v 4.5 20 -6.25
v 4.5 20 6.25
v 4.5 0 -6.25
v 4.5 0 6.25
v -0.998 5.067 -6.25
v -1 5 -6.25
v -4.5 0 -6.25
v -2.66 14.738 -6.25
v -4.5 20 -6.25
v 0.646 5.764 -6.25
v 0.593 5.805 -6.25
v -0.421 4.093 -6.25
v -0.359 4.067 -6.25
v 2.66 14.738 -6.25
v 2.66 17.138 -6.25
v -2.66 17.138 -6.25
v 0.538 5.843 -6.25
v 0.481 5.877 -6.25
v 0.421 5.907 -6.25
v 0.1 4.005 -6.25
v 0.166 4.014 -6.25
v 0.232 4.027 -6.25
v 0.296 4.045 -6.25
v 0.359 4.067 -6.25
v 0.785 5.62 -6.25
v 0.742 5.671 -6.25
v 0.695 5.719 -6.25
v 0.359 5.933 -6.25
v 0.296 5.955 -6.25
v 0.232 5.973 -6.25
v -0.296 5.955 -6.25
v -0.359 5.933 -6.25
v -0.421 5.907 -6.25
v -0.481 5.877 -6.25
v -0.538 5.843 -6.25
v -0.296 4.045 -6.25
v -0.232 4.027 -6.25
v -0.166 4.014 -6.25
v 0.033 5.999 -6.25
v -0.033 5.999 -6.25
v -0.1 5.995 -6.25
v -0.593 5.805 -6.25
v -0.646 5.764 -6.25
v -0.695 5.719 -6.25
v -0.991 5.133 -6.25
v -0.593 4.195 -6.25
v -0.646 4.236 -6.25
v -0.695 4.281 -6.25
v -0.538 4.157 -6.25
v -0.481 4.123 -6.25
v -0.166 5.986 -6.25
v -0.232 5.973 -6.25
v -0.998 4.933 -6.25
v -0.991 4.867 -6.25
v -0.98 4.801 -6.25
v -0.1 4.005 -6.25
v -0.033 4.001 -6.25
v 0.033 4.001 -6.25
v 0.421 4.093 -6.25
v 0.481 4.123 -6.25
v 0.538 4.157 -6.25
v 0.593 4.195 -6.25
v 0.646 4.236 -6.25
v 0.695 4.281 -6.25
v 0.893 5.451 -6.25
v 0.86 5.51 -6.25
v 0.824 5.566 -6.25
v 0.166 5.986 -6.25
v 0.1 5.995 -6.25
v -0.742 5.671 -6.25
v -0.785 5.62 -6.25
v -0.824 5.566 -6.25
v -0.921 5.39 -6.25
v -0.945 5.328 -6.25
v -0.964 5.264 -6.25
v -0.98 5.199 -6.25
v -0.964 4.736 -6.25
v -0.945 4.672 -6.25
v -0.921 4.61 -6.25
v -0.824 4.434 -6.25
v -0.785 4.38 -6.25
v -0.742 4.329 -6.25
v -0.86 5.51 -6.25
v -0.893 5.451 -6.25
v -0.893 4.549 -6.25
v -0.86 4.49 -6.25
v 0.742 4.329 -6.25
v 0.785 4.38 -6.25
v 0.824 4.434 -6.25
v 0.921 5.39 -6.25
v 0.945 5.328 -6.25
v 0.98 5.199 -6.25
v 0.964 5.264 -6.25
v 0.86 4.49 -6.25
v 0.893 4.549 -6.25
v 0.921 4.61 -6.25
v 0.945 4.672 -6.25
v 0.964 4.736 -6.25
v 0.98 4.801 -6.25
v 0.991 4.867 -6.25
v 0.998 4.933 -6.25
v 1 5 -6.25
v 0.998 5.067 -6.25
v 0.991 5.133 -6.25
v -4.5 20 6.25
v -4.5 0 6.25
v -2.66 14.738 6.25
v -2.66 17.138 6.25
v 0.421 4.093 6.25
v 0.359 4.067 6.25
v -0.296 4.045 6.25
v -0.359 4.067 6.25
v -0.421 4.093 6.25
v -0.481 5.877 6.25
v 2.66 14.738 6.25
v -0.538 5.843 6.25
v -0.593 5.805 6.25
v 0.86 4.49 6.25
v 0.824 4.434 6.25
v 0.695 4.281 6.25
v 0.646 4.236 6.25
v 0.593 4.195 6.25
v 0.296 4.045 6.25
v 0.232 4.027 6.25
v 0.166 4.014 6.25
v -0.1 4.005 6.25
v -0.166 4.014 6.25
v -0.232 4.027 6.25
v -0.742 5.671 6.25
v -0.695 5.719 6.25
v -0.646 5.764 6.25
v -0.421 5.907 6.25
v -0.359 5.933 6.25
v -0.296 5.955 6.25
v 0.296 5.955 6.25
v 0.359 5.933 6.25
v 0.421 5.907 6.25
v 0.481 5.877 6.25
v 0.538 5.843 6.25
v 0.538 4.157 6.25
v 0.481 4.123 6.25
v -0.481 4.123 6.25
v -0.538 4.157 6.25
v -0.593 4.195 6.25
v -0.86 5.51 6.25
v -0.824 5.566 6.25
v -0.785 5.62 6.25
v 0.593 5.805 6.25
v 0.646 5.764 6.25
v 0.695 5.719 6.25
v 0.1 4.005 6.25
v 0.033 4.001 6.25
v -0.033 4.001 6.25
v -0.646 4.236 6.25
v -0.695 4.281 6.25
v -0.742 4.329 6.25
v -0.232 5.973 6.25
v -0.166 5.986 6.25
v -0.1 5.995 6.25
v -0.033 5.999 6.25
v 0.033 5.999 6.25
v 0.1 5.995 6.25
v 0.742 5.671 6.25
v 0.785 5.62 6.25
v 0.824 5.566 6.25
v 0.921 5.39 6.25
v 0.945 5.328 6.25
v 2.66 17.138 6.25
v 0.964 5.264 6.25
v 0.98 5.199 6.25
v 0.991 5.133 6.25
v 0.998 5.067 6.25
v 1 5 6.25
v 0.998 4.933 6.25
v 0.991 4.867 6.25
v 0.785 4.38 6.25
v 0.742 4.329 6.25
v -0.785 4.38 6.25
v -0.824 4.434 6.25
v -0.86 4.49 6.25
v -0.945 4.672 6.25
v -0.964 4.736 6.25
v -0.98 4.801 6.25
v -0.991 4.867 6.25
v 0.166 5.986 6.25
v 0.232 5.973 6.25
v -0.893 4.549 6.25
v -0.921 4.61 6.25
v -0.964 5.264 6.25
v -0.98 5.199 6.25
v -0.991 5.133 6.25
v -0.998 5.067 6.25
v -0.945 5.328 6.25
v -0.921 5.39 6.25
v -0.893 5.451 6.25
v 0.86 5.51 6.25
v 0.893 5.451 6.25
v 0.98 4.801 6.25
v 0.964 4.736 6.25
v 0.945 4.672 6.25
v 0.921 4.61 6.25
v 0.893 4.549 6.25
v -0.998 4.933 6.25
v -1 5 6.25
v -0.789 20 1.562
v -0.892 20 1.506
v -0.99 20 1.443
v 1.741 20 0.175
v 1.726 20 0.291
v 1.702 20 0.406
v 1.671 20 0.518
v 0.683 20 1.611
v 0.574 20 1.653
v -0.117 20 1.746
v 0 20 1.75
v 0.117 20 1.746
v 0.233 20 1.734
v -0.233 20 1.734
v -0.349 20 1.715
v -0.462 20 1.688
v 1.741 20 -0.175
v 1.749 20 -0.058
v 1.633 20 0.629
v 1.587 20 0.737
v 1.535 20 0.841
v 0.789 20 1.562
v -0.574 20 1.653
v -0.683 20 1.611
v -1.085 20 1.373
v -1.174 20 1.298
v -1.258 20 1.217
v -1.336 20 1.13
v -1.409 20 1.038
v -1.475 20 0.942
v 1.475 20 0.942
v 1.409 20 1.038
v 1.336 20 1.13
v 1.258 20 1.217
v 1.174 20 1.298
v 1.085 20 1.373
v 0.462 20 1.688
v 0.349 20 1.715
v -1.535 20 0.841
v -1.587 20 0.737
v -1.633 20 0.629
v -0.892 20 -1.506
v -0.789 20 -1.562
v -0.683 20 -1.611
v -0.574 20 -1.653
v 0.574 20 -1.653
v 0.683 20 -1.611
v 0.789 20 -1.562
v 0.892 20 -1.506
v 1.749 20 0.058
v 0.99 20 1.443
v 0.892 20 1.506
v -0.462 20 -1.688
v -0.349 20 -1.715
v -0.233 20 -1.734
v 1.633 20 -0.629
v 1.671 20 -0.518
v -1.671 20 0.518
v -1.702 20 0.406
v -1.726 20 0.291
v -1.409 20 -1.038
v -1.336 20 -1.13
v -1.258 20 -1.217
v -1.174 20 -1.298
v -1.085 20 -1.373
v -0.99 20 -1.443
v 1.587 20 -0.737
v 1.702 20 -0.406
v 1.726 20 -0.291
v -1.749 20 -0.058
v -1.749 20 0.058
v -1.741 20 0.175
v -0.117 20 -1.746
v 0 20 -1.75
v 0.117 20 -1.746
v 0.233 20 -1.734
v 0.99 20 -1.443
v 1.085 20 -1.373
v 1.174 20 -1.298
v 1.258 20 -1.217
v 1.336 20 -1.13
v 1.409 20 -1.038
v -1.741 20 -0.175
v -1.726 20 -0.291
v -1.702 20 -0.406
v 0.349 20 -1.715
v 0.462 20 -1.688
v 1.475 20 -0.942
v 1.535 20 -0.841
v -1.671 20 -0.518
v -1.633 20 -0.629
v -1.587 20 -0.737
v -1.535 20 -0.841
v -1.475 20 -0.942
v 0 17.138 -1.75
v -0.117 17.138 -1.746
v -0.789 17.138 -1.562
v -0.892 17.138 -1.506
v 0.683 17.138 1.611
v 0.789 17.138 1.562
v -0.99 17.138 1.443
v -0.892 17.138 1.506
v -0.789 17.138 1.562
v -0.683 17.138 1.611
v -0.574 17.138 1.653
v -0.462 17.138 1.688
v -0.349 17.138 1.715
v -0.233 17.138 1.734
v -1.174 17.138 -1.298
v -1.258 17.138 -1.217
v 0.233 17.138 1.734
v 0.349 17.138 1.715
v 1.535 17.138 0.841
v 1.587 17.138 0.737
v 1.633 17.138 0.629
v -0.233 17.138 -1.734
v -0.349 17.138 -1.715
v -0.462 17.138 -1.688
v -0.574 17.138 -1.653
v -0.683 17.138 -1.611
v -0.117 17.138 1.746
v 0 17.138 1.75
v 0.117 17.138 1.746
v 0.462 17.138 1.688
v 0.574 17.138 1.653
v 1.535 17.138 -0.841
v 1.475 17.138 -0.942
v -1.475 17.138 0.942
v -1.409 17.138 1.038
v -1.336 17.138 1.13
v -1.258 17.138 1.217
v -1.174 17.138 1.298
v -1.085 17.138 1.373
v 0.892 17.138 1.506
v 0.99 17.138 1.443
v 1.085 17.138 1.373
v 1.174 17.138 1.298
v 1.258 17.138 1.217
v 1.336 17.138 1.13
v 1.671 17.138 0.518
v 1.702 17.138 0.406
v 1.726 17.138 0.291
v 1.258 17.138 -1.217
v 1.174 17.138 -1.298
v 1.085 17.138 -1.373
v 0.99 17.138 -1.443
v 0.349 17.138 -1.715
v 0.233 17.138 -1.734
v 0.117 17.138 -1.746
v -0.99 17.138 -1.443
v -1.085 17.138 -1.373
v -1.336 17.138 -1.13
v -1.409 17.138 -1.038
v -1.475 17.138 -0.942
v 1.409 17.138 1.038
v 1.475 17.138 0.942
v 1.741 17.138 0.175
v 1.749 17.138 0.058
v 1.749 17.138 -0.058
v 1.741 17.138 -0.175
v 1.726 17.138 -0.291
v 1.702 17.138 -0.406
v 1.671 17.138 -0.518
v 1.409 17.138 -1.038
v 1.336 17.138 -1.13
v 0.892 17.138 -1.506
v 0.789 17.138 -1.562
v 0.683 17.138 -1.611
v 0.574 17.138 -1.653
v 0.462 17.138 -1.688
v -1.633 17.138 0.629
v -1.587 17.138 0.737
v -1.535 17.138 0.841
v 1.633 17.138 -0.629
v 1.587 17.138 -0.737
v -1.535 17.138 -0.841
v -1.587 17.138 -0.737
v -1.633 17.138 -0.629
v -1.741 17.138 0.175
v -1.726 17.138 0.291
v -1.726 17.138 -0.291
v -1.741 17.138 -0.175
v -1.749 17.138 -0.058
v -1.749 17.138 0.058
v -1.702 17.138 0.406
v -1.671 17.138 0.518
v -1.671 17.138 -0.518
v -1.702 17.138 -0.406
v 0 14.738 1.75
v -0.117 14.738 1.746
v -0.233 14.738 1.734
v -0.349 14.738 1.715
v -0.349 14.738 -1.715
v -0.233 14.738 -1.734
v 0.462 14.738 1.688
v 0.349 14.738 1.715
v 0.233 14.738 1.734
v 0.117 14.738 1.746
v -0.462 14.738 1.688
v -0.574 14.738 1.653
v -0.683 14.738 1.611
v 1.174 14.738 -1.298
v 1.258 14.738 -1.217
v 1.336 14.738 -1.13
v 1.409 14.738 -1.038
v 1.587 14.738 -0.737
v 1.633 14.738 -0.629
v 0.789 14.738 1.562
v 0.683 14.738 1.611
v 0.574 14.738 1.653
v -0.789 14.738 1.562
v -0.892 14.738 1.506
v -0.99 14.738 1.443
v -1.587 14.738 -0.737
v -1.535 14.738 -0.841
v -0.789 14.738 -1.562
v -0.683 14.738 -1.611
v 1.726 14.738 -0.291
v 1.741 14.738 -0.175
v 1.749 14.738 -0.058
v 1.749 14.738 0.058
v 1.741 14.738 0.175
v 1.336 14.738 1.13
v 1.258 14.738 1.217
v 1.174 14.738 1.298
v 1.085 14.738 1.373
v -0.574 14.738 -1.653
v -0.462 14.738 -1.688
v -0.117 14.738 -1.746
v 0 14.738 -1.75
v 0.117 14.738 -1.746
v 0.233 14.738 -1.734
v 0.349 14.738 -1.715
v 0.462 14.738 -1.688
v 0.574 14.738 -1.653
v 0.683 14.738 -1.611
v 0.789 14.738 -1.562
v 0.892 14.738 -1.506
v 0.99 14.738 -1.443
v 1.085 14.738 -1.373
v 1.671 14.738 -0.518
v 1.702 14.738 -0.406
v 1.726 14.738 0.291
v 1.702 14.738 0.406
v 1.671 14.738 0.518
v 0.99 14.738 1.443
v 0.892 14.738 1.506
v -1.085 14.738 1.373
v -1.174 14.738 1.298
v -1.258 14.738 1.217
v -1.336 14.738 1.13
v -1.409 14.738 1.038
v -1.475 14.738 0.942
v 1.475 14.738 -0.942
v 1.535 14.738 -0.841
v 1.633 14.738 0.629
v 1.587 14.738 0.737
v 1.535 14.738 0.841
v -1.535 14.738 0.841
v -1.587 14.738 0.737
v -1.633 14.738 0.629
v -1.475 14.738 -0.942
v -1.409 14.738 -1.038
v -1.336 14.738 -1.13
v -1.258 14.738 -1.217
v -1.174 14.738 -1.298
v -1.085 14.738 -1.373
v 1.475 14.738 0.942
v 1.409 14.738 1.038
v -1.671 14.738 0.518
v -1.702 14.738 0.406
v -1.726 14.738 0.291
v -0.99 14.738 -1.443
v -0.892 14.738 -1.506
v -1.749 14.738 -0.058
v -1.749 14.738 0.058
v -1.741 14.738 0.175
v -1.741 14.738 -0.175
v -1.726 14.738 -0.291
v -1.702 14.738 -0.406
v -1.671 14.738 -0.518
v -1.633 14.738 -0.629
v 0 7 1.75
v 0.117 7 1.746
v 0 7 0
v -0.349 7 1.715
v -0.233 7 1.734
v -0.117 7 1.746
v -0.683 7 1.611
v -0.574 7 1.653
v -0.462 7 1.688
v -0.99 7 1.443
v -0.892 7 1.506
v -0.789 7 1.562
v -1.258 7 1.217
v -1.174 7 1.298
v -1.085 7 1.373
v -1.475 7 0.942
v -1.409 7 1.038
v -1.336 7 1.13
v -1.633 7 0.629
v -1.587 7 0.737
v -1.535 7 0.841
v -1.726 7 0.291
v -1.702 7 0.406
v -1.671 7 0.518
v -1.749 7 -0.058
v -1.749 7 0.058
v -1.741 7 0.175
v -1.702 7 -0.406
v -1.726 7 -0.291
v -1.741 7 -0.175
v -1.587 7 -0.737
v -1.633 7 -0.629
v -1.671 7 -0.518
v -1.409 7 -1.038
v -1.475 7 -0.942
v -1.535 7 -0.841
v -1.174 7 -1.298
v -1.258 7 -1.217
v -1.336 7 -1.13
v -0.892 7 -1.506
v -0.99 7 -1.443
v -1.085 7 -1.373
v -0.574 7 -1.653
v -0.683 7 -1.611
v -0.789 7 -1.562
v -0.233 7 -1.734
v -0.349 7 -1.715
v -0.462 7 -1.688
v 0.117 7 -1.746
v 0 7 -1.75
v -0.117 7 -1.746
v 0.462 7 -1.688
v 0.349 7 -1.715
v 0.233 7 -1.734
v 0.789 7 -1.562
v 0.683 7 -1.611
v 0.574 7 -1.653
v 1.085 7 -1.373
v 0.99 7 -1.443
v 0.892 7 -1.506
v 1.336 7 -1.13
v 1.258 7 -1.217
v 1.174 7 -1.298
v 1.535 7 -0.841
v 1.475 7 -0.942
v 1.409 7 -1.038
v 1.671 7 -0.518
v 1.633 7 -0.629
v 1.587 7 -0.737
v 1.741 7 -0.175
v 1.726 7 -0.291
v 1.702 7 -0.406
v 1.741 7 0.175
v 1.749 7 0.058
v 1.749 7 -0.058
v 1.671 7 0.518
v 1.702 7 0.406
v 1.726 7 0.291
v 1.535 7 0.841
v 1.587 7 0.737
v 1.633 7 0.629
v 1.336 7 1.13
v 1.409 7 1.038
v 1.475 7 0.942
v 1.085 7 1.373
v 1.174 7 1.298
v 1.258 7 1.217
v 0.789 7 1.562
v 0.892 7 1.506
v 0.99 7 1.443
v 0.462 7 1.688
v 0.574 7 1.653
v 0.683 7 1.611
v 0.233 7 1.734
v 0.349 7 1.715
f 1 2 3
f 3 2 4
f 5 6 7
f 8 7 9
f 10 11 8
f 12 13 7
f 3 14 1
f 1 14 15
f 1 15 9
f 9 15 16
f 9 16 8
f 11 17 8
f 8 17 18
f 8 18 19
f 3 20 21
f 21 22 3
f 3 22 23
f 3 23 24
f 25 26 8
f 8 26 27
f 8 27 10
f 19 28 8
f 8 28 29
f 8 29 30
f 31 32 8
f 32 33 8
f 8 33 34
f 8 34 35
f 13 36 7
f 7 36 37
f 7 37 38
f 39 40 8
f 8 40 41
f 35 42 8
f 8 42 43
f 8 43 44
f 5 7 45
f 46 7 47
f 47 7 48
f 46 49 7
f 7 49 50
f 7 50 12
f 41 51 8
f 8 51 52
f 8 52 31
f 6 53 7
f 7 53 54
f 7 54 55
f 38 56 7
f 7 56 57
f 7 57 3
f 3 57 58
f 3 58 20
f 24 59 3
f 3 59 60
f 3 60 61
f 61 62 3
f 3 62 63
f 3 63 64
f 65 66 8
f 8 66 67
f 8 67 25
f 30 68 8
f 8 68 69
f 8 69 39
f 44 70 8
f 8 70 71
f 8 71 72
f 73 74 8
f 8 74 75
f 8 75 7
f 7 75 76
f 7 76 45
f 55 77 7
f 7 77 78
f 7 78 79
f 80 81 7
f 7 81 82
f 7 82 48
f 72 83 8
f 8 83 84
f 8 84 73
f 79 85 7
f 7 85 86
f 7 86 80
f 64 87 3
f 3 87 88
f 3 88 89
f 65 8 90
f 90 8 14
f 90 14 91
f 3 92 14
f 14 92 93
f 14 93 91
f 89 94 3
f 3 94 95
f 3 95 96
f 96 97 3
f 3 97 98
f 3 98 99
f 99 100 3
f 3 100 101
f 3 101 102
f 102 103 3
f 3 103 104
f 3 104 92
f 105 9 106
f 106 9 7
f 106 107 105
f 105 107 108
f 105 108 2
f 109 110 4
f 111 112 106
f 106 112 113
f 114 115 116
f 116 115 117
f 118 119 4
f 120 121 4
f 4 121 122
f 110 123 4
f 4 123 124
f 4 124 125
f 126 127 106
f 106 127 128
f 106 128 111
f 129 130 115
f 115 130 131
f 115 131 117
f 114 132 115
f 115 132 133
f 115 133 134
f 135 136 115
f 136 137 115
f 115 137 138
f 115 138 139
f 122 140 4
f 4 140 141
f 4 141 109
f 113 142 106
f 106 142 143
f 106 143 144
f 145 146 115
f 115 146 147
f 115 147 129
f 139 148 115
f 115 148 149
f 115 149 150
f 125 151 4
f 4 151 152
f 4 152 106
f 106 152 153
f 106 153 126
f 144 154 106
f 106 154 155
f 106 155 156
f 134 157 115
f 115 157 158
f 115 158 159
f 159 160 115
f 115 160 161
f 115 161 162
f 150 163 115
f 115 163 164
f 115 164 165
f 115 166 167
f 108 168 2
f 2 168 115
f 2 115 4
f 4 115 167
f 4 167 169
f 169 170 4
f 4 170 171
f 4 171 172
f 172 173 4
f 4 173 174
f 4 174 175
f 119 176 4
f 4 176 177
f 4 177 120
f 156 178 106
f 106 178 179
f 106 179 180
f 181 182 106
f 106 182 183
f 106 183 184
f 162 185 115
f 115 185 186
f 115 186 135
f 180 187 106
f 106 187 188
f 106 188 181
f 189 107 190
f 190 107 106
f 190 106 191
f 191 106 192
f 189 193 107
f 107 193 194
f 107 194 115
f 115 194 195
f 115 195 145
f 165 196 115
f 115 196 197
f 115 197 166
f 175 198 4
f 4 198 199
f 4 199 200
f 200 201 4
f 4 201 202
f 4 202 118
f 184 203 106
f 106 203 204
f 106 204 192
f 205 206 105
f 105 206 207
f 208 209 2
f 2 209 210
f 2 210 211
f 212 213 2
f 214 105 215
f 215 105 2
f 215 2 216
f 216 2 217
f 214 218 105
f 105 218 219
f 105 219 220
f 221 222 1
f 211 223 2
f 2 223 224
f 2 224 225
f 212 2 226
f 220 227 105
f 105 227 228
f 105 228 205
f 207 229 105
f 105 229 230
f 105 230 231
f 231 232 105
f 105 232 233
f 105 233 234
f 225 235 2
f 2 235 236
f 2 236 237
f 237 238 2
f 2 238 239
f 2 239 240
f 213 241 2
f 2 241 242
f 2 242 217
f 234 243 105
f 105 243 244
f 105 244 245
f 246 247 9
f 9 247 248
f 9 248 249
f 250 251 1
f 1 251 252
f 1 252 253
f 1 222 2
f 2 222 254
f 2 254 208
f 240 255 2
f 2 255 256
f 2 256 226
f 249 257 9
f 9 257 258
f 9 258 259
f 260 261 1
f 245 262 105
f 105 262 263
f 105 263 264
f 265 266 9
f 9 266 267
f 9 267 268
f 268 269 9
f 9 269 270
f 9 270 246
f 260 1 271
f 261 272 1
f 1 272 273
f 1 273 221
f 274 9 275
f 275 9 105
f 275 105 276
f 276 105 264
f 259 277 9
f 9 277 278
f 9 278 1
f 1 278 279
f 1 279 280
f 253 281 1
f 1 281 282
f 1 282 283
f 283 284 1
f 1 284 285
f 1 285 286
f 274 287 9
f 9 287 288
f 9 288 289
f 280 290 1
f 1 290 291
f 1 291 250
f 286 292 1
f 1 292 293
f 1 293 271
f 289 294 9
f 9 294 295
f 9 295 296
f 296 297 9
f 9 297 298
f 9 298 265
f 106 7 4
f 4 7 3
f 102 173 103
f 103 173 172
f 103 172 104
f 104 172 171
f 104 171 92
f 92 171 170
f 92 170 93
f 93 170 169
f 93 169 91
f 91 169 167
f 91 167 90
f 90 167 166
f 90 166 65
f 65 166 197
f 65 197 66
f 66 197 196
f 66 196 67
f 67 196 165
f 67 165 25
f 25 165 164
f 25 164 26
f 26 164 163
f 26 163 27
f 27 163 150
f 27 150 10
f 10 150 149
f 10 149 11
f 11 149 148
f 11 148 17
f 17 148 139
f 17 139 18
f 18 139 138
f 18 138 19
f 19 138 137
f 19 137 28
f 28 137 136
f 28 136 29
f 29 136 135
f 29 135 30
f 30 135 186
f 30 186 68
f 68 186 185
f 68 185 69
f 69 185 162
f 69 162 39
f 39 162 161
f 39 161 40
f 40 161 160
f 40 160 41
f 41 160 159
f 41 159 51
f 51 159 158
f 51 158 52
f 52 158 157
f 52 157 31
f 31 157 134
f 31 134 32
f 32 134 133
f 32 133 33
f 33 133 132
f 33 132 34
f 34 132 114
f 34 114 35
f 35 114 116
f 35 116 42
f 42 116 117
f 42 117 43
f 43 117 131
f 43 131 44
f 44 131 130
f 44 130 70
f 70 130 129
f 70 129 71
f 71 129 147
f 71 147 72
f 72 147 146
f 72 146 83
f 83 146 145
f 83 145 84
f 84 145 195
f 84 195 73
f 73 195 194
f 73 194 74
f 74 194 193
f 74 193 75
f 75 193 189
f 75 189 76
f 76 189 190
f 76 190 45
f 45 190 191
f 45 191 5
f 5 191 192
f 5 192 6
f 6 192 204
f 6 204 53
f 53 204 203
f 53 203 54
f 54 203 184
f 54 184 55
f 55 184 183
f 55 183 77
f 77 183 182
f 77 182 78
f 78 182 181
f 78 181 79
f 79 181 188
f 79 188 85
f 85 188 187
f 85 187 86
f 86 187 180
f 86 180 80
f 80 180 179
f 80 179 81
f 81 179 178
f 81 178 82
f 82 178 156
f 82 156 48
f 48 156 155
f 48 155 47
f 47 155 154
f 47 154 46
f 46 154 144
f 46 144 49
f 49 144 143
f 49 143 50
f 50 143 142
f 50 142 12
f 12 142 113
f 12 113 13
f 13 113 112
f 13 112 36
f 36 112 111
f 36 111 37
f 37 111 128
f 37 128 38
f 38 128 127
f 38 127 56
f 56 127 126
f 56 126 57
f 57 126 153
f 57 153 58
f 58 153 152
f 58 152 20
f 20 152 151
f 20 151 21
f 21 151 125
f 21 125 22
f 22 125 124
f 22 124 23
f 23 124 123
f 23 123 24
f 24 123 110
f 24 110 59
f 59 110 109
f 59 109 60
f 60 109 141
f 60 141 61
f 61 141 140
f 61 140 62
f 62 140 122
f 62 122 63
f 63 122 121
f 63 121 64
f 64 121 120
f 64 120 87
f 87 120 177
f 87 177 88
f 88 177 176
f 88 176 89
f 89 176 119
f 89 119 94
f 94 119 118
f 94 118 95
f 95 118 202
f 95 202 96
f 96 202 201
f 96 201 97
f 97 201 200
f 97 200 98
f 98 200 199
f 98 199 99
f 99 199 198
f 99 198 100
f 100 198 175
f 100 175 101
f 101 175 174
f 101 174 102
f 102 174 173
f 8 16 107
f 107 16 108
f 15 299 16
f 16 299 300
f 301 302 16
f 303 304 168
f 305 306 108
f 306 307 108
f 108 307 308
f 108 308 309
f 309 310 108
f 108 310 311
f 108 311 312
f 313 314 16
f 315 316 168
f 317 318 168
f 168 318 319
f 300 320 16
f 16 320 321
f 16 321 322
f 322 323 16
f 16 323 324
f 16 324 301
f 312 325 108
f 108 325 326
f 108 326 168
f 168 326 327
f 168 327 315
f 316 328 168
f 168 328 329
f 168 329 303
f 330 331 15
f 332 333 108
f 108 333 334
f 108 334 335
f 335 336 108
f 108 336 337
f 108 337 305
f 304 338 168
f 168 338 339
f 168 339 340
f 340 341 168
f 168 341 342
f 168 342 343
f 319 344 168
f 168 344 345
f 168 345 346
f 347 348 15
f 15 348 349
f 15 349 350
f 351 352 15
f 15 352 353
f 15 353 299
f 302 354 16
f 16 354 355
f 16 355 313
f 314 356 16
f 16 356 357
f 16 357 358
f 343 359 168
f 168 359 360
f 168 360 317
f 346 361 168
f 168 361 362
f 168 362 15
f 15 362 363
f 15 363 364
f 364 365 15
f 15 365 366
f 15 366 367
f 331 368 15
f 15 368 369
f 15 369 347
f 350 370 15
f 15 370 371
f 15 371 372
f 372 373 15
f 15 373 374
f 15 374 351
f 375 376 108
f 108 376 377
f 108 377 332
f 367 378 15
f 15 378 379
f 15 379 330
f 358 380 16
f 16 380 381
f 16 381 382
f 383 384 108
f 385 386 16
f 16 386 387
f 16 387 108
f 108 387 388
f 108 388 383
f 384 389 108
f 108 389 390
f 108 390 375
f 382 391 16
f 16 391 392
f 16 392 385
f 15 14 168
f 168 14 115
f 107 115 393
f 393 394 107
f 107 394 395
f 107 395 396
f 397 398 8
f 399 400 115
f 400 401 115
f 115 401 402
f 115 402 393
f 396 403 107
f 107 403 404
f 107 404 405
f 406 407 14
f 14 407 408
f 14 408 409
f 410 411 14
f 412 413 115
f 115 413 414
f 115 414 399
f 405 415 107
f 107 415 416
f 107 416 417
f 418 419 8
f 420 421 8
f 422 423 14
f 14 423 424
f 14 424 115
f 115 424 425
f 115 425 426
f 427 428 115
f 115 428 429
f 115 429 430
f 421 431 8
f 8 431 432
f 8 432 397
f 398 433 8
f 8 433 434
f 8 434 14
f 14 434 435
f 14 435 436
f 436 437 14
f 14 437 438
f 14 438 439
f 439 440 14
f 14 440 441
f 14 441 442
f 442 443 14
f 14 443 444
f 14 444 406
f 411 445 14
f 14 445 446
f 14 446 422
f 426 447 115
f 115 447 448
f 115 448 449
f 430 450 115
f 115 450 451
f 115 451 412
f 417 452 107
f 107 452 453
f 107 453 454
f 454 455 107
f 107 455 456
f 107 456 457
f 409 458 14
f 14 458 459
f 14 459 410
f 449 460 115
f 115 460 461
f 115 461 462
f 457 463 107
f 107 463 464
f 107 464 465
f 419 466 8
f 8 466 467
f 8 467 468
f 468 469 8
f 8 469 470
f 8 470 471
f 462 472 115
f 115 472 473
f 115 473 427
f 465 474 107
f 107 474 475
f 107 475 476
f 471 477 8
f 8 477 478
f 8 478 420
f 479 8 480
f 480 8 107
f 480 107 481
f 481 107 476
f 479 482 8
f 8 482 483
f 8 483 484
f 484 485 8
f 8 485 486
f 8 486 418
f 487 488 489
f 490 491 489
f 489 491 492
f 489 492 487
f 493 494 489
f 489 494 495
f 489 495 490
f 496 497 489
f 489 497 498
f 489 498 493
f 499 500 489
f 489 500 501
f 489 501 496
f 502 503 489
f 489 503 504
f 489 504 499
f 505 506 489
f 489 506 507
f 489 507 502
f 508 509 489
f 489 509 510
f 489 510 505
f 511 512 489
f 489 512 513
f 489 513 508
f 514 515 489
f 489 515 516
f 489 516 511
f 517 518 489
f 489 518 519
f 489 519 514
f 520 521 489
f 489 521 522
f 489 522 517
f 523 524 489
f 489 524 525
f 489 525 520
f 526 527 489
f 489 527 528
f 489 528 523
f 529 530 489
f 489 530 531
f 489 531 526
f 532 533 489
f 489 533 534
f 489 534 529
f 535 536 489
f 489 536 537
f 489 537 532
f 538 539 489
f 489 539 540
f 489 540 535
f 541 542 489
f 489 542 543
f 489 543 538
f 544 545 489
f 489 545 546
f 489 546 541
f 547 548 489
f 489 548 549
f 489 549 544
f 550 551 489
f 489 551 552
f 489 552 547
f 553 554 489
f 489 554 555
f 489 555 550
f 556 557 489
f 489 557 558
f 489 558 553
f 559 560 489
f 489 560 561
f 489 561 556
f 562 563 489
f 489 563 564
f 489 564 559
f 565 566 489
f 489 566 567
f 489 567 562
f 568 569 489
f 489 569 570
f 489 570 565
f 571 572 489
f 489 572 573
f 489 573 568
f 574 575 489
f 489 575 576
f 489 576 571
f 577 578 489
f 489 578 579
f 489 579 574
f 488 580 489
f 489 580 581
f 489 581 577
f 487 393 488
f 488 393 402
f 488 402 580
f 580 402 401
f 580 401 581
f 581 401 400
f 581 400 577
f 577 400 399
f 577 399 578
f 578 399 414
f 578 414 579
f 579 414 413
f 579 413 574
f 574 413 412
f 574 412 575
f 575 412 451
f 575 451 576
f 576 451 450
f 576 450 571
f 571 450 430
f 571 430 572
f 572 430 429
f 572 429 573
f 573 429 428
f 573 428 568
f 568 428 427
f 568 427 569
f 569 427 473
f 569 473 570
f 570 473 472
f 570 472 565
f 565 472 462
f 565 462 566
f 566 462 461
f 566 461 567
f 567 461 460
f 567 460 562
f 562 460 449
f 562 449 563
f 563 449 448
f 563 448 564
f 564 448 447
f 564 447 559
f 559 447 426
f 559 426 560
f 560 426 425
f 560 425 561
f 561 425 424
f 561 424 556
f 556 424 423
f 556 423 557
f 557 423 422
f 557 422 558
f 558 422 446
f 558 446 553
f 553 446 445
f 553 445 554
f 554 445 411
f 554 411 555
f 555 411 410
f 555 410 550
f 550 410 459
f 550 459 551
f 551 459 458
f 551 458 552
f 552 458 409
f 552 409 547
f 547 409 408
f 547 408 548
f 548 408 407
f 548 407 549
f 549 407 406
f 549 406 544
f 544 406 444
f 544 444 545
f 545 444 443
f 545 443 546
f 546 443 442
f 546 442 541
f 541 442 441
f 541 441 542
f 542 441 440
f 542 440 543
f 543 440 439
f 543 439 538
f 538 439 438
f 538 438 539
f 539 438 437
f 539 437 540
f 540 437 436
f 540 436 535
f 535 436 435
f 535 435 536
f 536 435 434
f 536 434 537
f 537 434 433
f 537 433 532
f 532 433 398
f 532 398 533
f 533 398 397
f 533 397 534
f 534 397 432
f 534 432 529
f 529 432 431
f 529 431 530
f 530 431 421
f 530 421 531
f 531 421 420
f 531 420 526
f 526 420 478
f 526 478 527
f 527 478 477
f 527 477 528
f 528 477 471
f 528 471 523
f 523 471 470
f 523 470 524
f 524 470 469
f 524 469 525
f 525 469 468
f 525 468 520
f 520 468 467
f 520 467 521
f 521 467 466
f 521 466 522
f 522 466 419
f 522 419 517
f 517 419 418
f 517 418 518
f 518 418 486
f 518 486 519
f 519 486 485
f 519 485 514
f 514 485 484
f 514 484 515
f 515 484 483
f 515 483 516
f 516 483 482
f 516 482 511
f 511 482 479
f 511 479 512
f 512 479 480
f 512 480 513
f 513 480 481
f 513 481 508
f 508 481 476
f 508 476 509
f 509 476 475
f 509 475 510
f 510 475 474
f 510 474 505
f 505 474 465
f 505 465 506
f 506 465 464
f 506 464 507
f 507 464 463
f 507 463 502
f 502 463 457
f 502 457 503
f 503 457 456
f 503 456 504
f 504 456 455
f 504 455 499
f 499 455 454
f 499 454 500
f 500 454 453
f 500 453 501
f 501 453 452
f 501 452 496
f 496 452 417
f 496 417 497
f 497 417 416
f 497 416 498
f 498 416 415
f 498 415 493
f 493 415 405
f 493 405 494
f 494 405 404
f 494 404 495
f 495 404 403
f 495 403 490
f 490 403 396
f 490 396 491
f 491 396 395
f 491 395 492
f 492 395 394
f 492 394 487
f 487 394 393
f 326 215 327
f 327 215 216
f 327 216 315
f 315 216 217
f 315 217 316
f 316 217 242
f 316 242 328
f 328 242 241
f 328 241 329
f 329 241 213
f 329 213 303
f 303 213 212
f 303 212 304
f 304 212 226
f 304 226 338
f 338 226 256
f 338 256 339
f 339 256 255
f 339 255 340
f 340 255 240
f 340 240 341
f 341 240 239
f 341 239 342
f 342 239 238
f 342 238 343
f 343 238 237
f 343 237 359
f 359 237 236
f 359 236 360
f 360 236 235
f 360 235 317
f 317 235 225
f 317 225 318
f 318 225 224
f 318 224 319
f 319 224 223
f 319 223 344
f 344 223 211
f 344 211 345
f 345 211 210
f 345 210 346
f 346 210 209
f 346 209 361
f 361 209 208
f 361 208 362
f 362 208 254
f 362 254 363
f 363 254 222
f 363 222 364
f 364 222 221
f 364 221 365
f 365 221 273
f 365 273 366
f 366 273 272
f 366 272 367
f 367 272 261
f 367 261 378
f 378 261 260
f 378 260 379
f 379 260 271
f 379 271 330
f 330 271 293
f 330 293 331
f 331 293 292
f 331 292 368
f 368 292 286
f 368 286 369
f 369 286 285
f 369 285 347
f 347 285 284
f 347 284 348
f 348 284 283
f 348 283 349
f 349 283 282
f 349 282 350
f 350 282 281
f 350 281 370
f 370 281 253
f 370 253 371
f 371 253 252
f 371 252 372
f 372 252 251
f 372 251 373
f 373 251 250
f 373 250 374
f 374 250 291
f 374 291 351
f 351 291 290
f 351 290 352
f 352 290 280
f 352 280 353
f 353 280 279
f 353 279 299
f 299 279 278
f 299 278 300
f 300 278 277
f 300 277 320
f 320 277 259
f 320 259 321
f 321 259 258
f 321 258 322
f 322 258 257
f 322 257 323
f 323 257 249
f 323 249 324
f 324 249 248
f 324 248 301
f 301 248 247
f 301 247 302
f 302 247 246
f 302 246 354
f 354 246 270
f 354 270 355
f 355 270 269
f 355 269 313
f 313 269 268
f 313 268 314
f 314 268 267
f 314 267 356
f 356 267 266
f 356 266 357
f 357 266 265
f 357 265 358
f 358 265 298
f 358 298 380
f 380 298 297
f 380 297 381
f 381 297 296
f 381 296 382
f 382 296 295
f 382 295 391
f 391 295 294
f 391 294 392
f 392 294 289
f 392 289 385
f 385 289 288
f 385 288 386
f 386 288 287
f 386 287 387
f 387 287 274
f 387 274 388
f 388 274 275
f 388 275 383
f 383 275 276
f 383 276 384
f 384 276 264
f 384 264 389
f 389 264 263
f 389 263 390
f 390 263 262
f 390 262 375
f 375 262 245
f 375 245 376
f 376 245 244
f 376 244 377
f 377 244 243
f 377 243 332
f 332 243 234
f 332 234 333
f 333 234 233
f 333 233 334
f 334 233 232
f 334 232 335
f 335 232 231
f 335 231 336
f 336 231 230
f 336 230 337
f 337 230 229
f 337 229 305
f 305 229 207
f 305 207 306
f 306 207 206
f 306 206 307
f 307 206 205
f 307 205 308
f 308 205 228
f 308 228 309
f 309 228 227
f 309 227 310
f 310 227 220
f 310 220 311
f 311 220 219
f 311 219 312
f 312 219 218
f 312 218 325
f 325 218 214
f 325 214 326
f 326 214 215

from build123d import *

# Parameters (mm, degrees)
SKETCH1_W           = 9
SKETCH1_H           = 12.5
BOSS_EXTRUDE1_DEPTH = 20
SKETCH2_R           = 1
CUT_EXTRUDE1_DEPTH  = 13.5
SKETCH3_W           = 5.32
SKETCH3_H           = 2.4
CUT_EXTRUDE2_DEPTH  = 13.5
SKETCH4_R           = 1.75
CUT_EXTRUDE3_DEPTH  = 13


with BuildPart() as part:
    # Sketch1 → Boss-Extrude1 (new body)
    with BuildSketch(Plane(origin=(0, 0, 0), x_dir=(1, 0, 0), z_dir=(0, 1, 0))):
        Rectangle(SKETCH1_W, SKETCH1_H)
    extrude(amount=BOSS_EXTRUDE1_DEPTH)

    # Sketch2 → Cut-Extrude1 (cut, through all)
    with BuildSketch(Plane.XY.offset(6.25)):
        with Locations((0, 5)):
            Circle(SKETCH2_R)
    extrude(amount=-CUT_EXTRUDE1_DEPTH, mode=Mode.SUBTRACT)

    # Sketch3 → Cut-Extrude2 (cut, through all)
    with BuildSketch(Plane.XY.offset(6.25)):
        with Locations((0, 15.93763485)):
            Rectangle(SKETCH3_W, SKETCH3_H)
    extrude(amount=-CUT_EXTRUDE2_DEPTH, mode=Mode.SUBTRACT)

    # Sketch4 → Cut-Extrude3 (cut)
    with BuildSketch(Plane(origin=(0, 20, 0), x_dir=(1, 0, 0), z_dir=(0, 1, 0))):
        Circle(SKETCH4_R)
    extrude(amount=-CUT_EXTRUDE3_DEPTH, mode=Mode.SUBTRACT)


solid = part.part
